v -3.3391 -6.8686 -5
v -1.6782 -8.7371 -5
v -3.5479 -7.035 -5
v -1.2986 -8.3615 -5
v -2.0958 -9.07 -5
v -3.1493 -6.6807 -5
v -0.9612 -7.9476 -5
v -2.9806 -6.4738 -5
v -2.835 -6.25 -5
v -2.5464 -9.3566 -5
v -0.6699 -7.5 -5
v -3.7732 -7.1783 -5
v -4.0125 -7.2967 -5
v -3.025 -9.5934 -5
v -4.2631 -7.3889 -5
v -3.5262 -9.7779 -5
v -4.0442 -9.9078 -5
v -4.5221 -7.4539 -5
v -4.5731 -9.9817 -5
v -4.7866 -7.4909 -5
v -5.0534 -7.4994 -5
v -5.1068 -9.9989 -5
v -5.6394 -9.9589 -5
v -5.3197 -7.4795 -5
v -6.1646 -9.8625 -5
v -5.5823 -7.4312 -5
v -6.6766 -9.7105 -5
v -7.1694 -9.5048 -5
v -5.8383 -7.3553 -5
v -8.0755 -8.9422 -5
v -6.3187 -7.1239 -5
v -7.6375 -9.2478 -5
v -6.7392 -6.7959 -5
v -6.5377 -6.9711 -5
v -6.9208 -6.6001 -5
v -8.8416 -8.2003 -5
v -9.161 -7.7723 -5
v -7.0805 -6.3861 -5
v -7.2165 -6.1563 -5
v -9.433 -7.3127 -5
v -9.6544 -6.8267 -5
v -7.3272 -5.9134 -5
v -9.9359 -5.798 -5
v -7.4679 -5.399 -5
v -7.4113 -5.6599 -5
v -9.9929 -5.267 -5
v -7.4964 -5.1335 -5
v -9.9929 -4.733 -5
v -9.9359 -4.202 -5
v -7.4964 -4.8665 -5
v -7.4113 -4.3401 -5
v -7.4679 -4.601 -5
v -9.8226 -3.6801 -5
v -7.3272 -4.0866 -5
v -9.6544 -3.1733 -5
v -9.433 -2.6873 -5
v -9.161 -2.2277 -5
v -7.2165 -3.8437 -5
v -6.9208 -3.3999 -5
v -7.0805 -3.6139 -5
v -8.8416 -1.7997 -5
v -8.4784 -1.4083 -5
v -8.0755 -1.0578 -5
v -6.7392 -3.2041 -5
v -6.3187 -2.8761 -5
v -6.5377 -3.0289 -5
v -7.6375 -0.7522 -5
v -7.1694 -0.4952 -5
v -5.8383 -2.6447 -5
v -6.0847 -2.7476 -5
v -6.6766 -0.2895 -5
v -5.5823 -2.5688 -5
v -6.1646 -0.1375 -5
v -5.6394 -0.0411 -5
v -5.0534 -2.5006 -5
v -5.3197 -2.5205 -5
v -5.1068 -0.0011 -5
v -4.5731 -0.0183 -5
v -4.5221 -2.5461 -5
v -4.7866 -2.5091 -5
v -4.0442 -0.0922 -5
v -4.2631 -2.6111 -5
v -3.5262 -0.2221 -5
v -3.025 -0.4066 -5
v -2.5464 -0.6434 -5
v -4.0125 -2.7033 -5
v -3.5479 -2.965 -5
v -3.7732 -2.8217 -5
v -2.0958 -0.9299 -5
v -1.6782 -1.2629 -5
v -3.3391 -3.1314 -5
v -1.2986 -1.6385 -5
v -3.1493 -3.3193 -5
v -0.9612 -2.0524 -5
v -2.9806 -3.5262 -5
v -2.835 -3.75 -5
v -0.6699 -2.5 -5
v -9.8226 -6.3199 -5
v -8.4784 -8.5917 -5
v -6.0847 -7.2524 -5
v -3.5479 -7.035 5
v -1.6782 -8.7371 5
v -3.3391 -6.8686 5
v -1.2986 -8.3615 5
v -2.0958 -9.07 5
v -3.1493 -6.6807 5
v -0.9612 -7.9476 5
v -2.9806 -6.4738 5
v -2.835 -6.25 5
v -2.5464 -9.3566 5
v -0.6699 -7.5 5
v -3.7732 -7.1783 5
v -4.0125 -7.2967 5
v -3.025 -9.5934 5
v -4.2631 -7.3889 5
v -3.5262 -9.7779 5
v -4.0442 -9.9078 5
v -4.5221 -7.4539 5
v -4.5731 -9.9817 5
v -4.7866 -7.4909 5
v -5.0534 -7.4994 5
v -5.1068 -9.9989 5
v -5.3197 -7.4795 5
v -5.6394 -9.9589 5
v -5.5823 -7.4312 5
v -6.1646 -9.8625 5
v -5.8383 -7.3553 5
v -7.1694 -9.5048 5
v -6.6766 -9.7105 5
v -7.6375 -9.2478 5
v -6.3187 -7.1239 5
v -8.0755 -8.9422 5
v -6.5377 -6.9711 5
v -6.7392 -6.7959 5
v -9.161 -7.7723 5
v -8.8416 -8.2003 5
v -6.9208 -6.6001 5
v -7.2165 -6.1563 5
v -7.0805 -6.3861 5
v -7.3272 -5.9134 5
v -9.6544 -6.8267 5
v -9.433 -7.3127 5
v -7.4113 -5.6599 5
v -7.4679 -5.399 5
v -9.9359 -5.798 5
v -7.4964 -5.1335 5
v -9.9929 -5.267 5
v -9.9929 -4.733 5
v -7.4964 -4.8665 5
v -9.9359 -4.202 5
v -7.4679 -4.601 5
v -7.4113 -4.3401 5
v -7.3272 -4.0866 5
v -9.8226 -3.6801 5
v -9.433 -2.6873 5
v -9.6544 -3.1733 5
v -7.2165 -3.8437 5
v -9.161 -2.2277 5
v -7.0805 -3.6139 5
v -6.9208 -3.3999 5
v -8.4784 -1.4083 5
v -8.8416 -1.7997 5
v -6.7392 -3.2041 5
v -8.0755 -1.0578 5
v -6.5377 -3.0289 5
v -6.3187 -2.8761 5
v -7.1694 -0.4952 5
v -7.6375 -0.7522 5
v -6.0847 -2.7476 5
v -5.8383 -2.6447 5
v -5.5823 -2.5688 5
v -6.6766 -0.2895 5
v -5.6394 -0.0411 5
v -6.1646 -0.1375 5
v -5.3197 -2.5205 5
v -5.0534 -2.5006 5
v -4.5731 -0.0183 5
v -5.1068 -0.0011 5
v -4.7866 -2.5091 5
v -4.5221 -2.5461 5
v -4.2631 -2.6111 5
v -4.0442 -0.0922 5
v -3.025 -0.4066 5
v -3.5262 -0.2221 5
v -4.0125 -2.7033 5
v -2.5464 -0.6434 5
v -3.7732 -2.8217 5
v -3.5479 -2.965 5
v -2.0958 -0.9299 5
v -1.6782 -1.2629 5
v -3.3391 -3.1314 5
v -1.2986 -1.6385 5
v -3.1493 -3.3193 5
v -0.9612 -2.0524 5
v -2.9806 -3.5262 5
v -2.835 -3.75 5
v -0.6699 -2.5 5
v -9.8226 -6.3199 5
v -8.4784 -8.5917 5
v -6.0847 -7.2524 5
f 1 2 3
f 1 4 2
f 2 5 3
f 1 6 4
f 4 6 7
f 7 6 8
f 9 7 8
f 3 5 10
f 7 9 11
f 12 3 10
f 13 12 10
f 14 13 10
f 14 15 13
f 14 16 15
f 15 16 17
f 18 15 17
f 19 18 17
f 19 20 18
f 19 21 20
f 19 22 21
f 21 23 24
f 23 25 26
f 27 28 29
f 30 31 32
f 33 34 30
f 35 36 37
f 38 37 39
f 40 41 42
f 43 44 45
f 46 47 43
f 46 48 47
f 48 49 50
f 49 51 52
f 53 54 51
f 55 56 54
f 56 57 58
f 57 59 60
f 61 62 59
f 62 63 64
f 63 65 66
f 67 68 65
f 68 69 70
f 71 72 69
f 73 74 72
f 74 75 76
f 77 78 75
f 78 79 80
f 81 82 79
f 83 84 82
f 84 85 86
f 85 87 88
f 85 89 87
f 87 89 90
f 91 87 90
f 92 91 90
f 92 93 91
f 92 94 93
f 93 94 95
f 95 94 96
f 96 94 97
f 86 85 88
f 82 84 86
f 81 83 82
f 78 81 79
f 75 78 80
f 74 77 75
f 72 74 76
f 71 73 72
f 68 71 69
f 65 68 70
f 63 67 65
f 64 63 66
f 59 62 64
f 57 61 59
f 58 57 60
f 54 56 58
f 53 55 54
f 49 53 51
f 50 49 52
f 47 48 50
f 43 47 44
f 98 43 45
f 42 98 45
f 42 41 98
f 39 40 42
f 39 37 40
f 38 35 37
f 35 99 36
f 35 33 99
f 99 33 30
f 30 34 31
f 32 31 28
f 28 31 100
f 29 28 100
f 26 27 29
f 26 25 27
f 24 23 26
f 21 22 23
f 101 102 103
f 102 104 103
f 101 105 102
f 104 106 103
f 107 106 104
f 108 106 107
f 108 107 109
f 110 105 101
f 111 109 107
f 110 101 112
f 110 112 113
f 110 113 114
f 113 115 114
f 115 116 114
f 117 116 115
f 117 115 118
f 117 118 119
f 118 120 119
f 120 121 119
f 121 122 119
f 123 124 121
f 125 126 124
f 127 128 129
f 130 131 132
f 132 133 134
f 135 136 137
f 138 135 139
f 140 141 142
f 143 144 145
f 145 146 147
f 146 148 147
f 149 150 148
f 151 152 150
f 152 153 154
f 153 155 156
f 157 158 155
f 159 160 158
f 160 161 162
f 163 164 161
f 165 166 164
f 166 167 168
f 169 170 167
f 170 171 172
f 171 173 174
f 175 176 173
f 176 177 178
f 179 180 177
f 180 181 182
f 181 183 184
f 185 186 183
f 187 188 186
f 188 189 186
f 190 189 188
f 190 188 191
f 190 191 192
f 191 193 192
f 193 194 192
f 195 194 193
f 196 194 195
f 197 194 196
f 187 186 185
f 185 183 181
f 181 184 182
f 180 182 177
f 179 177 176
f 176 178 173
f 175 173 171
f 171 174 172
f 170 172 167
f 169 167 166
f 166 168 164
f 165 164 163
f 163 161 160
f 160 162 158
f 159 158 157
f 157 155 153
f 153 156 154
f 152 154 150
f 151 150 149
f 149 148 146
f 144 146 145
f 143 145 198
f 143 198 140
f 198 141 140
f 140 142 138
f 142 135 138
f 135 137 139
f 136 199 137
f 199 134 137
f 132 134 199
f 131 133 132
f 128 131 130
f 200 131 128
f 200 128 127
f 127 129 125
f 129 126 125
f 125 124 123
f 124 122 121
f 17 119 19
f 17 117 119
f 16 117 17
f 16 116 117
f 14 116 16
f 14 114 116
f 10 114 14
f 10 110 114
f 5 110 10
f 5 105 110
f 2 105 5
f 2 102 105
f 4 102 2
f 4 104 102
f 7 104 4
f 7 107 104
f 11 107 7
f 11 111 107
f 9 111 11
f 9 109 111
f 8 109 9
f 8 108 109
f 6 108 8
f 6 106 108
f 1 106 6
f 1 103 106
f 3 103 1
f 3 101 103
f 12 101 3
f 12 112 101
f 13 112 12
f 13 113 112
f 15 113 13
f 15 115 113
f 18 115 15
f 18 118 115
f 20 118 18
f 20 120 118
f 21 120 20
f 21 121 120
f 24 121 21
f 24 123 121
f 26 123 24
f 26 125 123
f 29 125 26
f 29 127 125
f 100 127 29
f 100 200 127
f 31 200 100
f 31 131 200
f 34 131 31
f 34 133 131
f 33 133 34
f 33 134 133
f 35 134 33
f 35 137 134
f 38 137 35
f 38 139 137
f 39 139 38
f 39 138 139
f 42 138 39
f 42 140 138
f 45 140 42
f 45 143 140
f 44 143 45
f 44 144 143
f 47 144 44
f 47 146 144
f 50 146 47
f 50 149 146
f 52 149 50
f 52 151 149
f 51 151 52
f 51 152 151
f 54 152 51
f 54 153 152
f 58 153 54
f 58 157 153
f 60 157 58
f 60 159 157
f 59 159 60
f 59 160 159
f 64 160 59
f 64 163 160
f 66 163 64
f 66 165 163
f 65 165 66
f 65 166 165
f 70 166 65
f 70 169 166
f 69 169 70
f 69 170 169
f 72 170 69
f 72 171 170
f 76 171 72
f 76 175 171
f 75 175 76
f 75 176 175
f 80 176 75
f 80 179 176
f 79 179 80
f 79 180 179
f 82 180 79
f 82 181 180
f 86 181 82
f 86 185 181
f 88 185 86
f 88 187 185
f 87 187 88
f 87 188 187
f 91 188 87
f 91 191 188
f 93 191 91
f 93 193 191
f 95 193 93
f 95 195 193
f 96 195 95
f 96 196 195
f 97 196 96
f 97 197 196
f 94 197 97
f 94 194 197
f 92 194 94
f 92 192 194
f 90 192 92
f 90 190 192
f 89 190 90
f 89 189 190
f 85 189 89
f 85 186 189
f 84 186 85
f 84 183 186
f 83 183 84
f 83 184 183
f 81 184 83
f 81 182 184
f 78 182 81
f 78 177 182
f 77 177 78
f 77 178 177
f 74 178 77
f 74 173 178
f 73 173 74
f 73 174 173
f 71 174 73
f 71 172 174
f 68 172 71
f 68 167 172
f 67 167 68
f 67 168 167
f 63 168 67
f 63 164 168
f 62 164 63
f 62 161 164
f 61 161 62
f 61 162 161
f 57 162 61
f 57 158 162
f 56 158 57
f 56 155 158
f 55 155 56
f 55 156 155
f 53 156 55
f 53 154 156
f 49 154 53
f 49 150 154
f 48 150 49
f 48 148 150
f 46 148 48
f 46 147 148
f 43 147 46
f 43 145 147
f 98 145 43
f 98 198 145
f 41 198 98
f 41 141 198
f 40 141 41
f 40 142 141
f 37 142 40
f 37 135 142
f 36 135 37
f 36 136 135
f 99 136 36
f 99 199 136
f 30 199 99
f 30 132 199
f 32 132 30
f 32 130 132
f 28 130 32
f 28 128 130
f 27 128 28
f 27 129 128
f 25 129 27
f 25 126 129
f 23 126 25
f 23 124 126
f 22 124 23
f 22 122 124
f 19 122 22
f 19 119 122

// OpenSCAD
// Generated by SolidPython 1.1.3 on 2025-02-20 01:30:55
$fn=50;


translate(v = [-5.0000000000, -5.0000000000, -5.0000000000]) {
	linear_extrude(height = 10) {
		polygon(points = [[4.3301270189, 2.5000000000], [4.0387948484, 2.9475644476], [3.7013899854, 3.3615044513], [3.3217613875, 3.7370979763], [2.9042396813, 4.0700604263], [2.4535877600, 4.3565935206], [1.9749464512, 4.5934286231], [1.4737758721, 4.7778640289], [0.9557931435, 4.9077957850], [0.4269071715, 4.9817416901], [-0.1068487589, 4.9988582039], [-0.6393858084, 4.9589500691], [-1.1646290421, 4.8624725392], [-1.6765867295, 4.7105261849], [-2.1694186956, 4.5048443395], [-2.6375029425, 4.2477733259], [-3.0754997831, 3.9422456905], [-3.4784127530, 3.5917467505], [-3.8416456087, 3.2002748347], [-4.1610547586, 2.7722956725], [-4.4329965319, 2.3126914512], [-4.6543687432, 1.8267051218], [-4.8226460815, 1.3198805903], [-4.9359089171, 0.7979994752], [-4.9928652003, 0.2670151533], [-4.9928652003, -0.2670151533], [-4.9359089171, -0.7979994752], [-4.8226460815, -1.3198805903], [-4.6543687432, -1.8267051218], [-4.4329965319, -2.3126914512], [-4.1610547586, -2.7722956725], [-3.8416456087, -3.2002748347], [-3.4784127530, -3.5917467505], [-3.0754997831, -3.9422456905], [-2.6375029425, -4.2477733259], [-2.1694186956, -4.5048443395], [-1.6765867295, -4.7105261849], [-1.1646290421, -4.8624725392], [-0.6393858084, -4.9589500691], [-0.1068487589, -4.9988582039], [0.4269071715, -4.9817416901], [0.9557931435, -4.9077957850], [1.4737758721, -4.7778640289], [1.9749464512, -4.5934286231], [2.4535877600, -4.3565935206], [2.9042396813, -4.0700604263], [3.3217613875, -3.7370979763], [3.7013899854, -3.3615044513], [4.0387948484, -2.9475644476], [4.3301270189, -2.5000000000], [2.1650635095, -1.2500000000], [2.0193974242, -1.4737822238], [1.8506949927, -1.6807522257], [1.6608806938, -1.8685489881], [1.4521198406, -2.0350302131], [1.2267938800, -2.1782967603], [0.9874732256, -2.2967143115], [0.7368879360, -2.3889320145], [0.4778965718, -2.4538978925], [0.2134535857, -2.4908708451], [-0.0534243795, -2.4994291020], [-0.3196929042, -2.4794750346], [-0.5823145210, -2.4312362696], [-0.8382933648, -2.3552630924], [-1.0847093478, -2.2524221698], [-1.3187514713, -2.1238866629], [-1.5377498915, -1.9711228453], [-1.7392063765, -1.7958733752], [-1.9208228043, -1.6001374173], [-2.0805273793, -1.3861478363], [-2.2164982659, -1.1563457256], [-2.3271843716, -0.9133525609], [-2.4113230407, -0.6599402952], [-2.4679544585, -0.3989997376], [-2.4964326001, -0.1335075766], [-2.4964326001, 0.1335075766], [-2.4679544585, 0.3989997376], [-2.4113230407, 0.6599402952], [-2.3271843716, 0.9133525609], [-2.2164982659, 1.1563457256], [-2.0805273793, 1.3861478363], [-1.9208228043, 1.6001374173], [-1.7392063765, 1.7958733752], [-1.5377498915, 1.9711228453], [-1.3187514713, 2.1238866629], [-1.0847093478, 2.2524221698], [-0.8382933648, 2.3552630924], [-0.5823145210, 2.4312362696], [-0.3196929042, 2.4794750346], [-0.0534243795, 2.4994291020], [0.2134535857, 2.4908708451], [0.4778965718, 2.4538978925], [0.7368879360, 2.3889320145], [0.9874732256, 2.2967143115], [1.2267938800, 2.1782967603], [1.4521198406, 2.0350302131], [1.6608806938, 1.8685489881], [1.8506949927, 1.6807522257], [2.0193974242, 1.4737822238], [2.1650635095, 1.2500000000]]);
	}
}
/***********************************************
*********      SolidPython code:      **********
************************************************
 
from solid import *
from solid.utils import *

import math
import matplotlib.pyplot as plt
import subprocess
import os

class Hole:
    def __init__(self, x, y, radius):
        """
        Hole defined by:
        :param x: x dimension for center point of the circle as a ratio of letter height
        :param y: y dimension for center point of the circle as a ratio of letter height
        :param radius: radius of circle as a ratio of letter height
        """
        self.x = x
        self.y = y
        self.radius = radius

class Letter3D:
    def __init__(self, name, outer_shape_points, height, holes=[]):
        """
        3D Letter defined by:
        :param name: name of letter
        :param outer_shape_points: points defining the outer shape of the letter
        :param heigh: size of cube that letter fits inside
        :param holes: list of Holes
        """
        self.name = name
        self.outer_shape_points = outer_shape_points
        self.holes = holes
        self.height = height

    def render(self):
        shape = polygon(points=self.outer_shape_points)

        if self.holes:
            for hole in self.holes:
                circle_hole = circle(r=hole.radius*self.height)
                positioned_hole = translate([hole.x*self.height, hole.y*self.height])(circle_hole)
                shape = difference()(shape, positioned_hole)
        
        shape_3d = linear_extrude(height=self.height)(shape)
        shape_3d = translate([-self.height/2, -self.height/2, -self.height/2])(shape_3d)
        
        scad_render_to_file(shape_3d, f"output/{self.name}.scad", file_header='$fn=50;')
        subprocess.run(["C:\\Program Files\\OpenSCAD\\openscad.exe", "-o", f"output\\{self.name}.stl", f"output\\{self.name}.scad"])
                

def arc_points(radius, start_angle, end_angle, num_points=50, center=[0,0]):
    angles = [start_angle + i * (end_angle - start_angle) / (num_points - 1)
              for i in range(num_points)]
    points = [
        (center[0] + radius * math.cos(math.radians(angle)),
         center[1] + radius * math.sin(math.radians(angle)))
        for angle in angles
    ]
    return points

def letter_A(h):
    shape_points = [(0,0), (h/2, h), (h, 0), (5/6*h, 0), (2/3*h, 1/3*h), (1/3*h, 1/3*h), (h/6, 0)]
    holes = [Hole(1/2, 7/12, 1/6)]
    A = Letter3D("A", shape_points, h, holes)
    return A.render()


def letter_B(h):
    top_arc_points = arc_points(h/4, 90, -90, center=[3/4*h, 3/4*h])
    bottom_arc_points = arc_points(h/4, 90, -90, center=[3/4*h, h/4])
    other_points = [(0,0),(0,h)]

    shape_points = top_arc_points + bottom_arc_points + other_points
    holes = [Hole(1/2, 3/4, 1/6), Hole(1/2, 1/4, 1/6)]
    B = Letter3D("B", shape_points, h, holes)
    return B.render()

def letter_C(h):
    outer_arc_points = arc_points(h/2, 30, 330)
    inner_arc_points = arc_points(h/4, 30, 330)[::-1]
    shape_points = outer_arc_points + inner_arc_points

    shape_points = outer_arc_points + inner_arc_points
    C = Letter3D("C", shape_points, h)
    return C.render()

if __name__ == "__main__":
    os.makedirs("output", exist_ok=True)

    # Just the letter B
    letter_C(10)
    # scad_render_to_file(b, "customB.scad", file_header='$fn=50;')
    # subprocess.run(["C:\\Program Files\\OpenSCAD\\openscad.exe", "-o", "customB.stl", "customB.scad"])

    # Intersection of A and A
    # a1 = translate([0,0,0])(letter_A(10))
    # a2 = translate([0,0,0])(rotate(a=90, v=[0,1,0])(letter_B(10)))
    # combined = intersection()(a1, a2)
    # scad_render_to_file(combined, "AB.scad")
    # subprocess.run(["C:\\Program Files\\OpenSCAD\\openscad.exe", "-o", "AB.stl", "AB.scad"])
 
 
************************************************/
